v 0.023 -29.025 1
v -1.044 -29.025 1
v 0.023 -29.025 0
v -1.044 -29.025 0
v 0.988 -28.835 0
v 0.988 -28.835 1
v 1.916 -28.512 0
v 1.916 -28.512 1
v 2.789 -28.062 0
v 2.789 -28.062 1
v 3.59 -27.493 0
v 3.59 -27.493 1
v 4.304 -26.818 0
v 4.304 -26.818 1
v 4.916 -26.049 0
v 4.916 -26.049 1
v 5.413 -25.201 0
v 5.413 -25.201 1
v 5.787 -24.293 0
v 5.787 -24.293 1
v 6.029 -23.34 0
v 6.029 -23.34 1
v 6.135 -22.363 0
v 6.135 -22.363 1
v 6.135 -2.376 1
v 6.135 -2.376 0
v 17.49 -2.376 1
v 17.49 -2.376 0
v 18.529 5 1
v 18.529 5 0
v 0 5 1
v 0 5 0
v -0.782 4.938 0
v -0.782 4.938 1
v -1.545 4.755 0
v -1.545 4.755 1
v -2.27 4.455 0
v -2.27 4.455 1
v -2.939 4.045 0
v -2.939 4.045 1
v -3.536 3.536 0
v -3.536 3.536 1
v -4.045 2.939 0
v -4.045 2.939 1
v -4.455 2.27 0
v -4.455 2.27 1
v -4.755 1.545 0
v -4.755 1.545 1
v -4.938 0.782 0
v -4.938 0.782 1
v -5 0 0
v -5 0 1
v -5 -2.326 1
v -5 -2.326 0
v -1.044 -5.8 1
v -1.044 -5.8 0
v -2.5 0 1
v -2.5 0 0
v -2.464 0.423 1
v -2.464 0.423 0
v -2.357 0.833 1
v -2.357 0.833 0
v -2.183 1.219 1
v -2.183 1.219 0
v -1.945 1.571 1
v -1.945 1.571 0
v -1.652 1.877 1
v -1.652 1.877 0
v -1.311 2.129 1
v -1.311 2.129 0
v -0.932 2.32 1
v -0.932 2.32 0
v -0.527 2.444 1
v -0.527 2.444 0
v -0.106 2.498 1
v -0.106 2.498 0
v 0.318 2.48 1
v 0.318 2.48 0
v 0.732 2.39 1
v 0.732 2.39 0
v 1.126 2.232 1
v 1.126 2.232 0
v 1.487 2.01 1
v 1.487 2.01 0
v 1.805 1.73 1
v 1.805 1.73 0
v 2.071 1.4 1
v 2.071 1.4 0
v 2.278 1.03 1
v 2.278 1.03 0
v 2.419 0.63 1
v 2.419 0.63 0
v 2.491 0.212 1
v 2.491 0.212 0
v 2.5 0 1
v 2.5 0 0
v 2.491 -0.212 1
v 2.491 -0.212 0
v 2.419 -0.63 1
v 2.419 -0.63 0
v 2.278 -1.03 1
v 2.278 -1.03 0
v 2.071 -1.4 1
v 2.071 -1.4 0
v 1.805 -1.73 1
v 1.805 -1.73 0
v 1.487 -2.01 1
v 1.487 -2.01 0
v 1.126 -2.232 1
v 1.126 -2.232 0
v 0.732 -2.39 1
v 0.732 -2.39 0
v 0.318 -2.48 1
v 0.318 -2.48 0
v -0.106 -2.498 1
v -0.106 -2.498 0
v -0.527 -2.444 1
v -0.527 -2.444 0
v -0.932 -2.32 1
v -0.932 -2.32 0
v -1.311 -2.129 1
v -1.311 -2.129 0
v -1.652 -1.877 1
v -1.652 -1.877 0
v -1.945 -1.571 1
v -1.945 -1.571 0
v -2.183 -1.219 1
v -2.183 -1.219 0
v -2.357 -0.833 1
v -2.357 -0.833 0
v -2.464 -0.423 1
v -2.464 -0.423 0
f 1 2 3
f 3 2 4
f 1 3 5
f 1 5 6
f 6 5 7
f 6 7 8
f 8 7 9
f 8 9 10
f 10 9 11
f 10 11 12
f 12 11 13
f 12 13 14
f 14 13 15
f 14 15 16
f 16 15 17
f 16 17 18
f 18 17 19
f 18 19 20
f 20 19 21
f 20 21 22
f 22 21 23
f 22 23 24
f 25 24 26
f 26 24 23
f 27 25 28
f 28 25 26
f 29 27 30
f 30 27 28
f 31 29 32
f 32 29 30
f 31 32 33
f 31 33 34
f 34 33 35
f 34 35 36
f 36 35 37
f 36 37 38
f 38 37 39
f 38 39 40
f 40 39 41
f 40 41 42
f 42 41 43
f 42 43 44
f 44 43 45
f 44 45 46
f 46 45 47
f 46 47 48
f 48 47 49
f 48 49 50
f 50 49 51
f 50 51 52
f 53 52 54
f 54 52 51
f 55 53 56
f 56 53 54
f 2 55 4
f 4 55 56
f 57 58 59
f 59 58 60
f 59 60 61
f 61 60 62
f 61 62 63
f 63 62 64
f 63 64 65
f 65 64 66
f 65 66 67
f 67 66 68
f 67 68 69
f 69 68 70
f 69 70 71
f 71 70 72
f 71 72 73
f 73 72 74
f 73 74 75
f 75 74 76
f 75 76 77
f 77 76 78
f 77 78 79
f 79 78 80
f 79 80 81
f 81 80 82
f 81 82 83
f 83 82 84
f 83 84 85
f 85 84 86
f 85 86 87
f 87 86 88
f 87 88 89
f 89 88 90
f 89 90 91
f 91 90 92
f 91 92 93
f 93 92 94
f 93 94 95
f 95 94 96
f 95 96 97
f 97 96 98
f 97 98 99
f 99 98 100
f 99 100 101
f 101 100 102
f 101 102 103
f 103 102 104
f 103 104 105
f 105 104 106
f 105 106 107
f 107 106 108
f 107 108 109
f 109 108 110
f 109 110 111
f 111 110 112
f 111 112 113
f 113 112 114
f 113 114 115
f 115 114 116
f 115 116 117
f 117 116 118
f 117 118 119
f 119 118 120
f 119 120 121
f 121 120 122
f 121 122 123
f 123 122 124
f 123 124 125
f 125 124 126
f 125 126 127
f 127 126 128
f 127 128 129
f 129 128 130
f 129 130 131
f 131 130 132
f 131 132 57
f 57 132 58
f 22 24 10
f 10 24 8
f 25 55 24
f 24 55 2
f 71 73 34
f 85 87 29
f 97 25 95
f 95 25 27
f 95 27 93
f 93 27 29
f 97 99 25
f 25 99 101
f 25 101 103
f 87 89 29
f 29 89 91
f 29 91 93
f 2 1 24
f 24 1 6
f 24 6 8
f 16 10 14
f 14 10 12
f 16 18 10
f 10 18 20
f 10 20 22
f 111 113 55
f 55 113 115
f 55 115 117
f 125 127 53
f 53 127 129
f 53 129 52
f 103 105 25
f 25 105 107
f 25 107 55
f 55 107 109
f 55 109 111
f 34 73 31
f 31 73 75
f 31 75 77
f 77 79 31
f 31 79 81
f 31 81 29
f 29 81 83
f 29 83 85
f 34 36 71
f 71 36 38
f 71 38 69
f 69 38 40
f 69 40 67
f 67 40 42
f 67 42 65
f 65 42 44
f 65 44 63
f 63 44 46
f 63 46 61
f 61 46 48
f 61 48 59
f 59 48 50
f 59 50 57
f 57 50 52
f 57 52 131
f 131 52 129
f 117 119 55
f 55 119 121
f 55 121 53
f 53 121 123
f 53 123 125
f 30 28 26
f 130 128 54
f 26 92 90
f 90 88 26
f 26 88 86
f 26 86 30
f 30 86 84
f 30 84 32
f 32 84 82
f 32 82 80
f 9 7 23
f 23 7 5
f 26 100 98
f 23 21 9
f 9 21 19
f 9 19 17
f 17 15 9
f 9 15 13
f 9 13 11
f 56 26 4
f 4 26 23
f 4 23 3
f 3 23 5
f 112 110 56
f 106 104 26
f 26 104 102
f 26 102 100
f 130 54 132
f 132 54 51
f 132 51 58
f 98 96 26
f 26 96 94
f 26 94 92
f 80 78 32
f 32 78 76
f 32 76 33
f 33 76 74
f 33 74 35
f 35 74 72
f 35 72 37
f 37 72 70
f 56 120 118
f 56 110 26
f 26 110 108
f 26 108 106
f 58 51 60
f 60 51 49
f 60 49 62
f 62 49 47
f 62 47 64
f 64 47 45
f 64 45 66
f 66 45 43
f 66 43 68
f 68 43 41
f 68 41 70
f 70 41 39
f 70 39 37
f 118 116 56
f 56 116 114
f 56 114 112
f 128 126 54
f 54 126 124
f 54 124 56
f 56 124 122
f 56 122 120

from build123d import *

# Parameters (mm, degrees)
SKETCH_1_R      = 2.5
EXTRUDE_1_DEPTH = 1


with BuildPart() as part:
    # 스케치1 → 보스-돌출1 (new body)
    with BuildSketch(Plane.XY):
        with BuildLine():
            Line((18.529028891, 5), (0, 5))
            ThreePointArc((0, 5), (-3.535533906, 3.535533906), (-5, 0))
            Line((-5, 0), (-5, -2.326474397))
            Line((-5, -2.326474397), (-1.043619368, -5.799632967))
            Line((-1.043619368, -5.799632967), (-1.043619368, -29.024920851))
            Line((-1.043619368, -29.024920851), (0.023324735, -29.024920851))
            ThreePointArc((0.023324735, -29.024920851), (4.304027875, -26.817883884), (6.134722324, -22.363224595))
            Line((6.134722324, -22.363224595), (6.134722324, -2.376138068))
            Line((6.134722324, -2.376138068), (17.489524427, -2.376138068))
            Line((17.489524427, -2.376138068), (18.529028891, 5))
        make_face()
        Circle(SKETCH_1_R, mode=Mode.SUBTRACT)
    extrude(amount=EXTRUDE_1_DEPTH)


solid = part.part
